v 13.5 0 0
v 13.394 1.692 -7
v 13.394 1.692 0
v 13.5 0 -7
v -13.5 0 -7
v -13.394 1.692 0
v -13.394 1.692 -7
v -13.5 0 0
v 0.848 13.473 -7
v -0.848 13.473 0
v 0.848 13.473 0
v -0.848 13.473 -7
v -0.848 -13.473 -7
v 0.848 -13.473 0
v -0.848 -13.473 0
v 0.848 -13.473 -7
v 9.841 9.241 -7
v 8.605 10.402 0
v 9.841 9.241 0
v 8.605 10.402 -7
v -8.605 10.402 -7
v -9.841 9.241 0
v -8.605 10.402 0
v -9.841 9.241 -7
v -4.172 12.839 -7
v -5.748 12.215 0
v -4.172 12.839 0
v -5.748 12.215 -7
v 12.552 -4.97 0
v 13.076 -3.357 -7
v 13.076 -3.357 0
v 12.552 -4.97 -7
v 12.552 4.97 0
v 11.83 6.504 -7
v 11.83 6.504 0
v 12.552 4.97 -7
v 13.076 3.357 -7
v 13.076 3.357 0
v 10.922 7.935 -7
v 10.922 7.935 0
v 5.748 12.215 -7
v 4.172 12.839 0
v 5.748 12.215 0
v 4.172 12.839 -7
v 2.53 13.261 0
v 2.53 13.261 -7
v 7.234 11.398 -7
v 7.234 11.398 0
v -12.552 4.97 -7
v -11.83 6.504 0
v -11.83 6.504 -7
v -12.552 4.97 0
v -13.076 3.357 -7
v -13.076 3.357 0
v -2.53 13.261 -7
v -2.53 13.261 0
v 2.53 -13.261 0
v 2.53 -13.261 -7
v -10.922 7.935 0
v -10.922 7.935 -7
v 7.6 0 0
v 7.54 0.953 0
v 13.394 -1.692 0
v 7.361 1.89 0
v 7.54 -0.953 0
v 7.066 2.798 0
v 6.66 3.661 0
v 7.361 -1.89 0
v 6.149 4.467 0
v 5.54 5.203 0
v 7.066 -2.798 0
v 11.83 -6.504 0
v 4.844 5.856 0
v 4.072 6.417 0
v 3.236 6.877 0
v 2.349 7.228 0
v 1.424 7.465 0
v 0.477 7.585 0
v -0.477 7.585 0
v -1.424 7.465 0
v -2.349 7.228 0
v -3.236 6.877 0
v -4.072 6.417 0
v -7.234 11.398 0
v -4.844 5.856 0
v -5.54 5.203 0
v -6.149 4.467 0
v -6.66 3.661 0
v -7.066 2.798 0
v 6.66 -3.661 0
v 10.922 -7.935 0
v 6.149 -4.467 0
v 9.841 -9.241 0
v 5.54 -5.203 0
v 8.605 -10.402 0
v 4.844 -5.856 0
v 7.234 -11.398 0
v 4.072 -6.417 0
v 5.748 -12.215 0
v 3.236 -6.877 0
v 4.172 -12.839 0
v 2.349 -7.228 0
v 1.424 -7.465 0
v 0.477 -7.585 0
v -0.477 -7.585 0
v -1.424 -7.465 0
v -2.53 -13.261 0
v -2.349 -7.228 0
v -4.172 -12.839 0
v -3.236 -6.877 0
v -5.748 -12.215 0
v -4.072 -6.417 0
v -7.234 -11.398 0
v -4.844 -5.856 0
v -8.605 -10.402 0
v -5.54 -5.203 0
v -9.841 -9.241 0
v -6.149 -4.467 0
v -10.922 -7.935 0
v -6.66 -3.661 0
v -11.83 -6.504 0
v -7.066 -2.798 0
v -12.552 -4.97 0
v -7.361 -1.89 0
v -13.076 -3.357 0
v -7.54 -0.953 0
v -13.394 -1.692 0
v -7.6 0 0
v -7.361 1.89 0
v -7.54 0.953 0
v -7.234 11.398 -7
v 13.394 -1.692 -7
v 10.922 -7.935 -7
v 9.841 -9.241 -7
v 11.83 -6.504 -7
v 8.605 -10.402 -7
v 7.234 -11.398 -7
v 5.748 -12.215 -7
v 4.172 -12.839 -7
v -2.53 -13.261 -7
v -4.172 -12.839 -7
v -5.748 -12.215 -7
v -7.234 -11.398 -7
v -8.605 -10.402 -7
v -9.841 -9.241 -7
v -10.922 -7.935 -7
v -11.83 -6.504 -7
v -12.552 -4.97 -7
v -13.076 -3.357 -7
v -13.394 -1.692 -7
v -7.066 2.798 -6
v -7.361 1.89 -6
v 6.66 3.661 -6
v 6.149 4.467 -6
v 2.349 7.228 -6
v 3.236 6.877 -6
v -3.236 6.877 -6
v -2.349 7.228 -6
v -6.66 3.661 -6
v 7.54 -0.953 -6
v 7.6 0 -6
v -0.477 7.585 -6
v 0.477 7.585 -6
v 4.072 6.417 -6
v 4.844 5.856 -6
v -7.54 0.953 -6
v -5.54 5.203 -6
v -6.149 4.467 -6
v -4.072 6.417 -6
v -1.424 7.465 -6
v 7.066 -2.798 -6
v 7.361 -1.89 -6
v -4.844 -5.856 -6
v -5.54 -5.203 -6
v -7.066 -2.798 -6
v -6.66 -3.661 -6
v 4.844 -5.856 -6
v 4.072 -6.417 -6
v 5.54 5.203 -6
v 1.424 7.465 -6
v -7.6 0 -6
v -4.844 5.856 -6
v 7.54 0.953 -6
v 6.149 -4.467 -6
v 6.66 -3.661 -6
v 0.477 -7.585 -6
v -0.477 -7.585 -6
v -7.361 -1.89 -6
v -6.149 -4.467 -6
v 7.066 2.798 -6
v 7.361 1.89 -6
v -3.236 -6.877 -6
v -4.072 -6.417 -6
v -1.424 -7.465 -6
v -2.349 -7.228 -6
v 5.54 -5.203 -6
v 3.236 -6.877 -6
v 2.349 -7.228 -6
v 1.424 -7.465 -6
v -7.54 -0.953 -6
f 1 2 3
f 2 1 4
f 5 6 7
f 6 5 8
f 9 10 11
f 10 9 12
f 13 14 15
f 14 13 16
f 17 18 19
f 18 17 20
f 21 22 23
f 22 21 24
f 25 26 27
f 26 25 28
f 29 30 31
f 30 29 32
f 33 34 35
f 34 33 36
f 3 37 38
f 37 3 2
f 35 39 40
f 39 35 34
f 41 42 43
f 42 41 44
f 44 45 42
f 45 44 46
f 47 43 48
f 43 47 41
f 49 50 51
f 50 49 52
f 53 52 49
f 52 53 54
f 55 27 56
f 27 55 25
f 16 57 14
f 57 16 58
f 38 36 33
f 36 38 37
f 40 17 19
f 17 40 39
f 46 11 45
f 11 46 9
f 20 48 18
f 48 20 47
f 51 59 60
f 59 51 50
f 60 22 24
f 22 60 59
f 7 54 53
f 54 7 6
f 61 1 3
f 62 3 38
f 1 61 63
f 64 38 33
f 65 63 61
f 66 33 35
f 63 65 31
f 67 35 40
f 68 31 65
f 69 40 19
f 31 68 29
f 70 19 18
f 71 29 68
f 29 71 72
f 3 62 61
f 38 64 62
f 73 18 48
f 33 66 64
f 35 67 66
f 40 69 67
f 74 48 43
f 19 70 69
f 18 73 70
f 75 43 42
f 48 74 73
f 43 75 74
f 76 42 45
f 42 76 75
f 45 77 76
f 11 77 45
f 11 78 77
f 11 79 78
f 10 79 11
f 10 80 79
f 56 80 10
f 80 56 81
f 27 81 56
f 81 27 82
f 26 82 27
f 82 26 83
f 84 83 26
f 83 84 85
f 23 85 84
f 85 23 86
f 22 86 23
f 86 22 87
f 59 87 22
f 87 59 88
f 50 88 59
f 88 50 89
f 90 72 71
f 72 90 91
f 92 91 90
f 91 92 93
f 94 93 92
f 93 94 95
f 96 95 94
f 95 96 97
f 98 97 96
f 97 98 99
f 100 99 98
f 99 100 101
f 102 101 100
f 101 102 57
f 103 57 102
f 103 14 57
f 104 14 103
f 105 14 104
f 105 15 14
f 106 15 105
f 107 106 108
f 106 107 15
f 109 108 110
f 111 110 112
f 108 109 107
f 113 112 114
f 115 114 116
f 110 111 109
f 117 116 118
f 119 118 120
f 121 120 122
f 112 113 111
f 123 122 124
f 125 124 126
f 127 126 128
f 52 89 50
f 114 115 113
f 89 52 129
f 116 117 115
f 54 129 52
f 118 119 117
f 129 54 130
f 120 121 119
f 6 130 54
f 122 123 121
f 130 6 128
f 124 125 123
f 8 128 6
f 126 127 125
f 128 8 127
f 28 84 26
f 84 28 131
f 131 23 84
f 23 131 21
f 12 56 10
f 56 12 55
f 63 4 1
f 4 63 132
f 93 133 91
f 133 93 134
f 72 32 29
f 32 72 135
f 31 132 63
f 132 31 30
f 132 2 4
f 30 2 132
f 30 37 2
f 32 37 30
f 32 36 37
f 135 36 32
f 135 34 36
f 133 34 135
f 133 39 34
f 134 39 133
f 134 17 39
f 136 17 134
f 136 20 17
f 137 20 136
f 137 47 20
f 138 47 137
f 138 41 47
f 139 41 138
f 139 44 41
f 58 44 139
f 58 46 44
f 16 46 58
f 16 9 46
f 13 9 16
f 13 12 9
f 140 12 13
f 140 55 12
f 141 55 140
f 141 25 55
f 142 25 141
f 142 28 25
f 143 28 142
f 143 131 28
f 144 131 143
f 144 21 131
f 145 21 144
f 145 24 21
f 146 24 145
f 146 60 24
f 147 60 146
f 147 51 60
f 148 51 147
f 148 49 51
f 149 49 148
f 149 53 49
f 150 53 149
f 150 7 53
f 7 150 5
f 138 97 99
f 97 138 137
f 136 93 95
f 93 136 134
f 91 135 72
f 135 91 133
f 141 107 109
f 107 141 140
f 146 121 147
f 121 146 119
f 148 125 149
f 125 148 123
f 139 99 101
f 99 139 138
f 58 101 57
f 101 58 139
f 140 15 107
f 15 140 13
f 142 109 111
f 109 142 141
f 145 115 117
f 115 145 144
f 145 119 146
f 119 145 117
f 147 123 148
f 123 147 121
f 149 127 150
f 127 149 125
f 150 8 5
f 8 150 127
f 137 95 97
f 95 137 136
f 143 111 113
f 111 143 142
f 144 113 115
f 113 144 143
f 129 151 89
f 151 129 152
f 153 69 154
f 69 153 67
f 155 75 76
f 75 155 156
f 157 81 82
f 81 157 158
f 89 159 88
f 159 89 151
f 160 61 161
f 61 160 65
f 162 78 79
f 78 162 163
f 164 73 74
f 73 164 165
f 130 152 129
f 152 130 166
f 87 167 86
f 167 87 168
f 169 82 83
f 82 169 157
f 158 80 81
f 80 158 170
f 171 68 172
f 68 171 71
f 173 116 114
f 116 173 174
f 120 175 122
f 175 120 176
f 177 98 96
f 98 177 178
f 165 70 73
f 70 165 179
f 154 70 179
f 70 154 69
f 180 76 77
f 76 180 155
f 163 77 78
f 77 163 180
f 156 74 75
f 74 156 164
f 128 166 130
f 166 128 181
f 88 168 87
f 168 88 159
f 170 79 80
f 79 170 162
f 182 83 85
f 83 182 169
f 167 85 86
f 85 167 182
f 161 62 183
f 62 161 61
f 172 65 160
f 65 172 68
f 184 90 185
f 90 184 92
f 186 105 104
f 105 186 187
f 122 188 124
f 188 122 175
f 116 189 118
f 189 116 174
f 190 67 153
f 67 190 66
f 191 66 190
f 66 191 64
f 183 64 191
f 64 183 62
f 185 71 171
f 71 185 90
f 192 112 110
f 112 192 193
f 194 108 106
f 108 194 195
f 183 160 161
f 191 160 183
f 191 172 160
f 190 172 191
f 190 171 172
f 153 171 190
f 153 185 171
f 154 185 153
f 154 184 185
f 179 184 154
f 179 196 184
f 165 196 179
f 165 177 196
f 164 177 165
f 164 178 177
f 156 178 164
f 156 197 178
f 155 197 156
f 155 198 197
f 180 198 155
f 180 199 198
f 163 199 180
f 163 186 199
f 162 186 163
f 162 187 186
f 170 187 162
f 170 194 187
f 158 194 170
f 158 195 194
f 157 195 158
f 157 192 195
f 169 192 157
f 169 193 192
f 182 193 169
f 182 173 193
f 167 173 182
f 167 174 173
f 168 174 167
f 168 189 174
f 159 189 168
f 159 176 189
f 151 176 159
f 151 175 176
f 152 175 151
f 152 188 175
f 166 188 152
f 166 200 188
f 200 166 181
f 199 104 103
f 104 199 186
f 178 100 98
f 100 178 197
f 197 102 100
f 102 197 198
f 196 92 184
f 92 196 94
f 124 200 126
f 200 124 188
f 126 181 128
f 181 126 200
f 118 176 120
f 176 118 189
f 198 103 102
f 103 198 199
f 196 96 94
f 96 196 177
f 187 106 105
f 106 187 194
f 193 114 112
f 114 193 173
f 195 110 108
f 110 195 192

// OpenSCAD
$fn = 50;


difference() {
	union() {
		translate(v = [0, 0, -7.0000000000]) {
			cylinder(h = 7, r = 13.5000000000);
		}
	}
	union() {
		#translate(v = [0, 0, -6.0000000000]) {
			cylinder(h = 6, r = 7.6000000000);
		}
	}
}
